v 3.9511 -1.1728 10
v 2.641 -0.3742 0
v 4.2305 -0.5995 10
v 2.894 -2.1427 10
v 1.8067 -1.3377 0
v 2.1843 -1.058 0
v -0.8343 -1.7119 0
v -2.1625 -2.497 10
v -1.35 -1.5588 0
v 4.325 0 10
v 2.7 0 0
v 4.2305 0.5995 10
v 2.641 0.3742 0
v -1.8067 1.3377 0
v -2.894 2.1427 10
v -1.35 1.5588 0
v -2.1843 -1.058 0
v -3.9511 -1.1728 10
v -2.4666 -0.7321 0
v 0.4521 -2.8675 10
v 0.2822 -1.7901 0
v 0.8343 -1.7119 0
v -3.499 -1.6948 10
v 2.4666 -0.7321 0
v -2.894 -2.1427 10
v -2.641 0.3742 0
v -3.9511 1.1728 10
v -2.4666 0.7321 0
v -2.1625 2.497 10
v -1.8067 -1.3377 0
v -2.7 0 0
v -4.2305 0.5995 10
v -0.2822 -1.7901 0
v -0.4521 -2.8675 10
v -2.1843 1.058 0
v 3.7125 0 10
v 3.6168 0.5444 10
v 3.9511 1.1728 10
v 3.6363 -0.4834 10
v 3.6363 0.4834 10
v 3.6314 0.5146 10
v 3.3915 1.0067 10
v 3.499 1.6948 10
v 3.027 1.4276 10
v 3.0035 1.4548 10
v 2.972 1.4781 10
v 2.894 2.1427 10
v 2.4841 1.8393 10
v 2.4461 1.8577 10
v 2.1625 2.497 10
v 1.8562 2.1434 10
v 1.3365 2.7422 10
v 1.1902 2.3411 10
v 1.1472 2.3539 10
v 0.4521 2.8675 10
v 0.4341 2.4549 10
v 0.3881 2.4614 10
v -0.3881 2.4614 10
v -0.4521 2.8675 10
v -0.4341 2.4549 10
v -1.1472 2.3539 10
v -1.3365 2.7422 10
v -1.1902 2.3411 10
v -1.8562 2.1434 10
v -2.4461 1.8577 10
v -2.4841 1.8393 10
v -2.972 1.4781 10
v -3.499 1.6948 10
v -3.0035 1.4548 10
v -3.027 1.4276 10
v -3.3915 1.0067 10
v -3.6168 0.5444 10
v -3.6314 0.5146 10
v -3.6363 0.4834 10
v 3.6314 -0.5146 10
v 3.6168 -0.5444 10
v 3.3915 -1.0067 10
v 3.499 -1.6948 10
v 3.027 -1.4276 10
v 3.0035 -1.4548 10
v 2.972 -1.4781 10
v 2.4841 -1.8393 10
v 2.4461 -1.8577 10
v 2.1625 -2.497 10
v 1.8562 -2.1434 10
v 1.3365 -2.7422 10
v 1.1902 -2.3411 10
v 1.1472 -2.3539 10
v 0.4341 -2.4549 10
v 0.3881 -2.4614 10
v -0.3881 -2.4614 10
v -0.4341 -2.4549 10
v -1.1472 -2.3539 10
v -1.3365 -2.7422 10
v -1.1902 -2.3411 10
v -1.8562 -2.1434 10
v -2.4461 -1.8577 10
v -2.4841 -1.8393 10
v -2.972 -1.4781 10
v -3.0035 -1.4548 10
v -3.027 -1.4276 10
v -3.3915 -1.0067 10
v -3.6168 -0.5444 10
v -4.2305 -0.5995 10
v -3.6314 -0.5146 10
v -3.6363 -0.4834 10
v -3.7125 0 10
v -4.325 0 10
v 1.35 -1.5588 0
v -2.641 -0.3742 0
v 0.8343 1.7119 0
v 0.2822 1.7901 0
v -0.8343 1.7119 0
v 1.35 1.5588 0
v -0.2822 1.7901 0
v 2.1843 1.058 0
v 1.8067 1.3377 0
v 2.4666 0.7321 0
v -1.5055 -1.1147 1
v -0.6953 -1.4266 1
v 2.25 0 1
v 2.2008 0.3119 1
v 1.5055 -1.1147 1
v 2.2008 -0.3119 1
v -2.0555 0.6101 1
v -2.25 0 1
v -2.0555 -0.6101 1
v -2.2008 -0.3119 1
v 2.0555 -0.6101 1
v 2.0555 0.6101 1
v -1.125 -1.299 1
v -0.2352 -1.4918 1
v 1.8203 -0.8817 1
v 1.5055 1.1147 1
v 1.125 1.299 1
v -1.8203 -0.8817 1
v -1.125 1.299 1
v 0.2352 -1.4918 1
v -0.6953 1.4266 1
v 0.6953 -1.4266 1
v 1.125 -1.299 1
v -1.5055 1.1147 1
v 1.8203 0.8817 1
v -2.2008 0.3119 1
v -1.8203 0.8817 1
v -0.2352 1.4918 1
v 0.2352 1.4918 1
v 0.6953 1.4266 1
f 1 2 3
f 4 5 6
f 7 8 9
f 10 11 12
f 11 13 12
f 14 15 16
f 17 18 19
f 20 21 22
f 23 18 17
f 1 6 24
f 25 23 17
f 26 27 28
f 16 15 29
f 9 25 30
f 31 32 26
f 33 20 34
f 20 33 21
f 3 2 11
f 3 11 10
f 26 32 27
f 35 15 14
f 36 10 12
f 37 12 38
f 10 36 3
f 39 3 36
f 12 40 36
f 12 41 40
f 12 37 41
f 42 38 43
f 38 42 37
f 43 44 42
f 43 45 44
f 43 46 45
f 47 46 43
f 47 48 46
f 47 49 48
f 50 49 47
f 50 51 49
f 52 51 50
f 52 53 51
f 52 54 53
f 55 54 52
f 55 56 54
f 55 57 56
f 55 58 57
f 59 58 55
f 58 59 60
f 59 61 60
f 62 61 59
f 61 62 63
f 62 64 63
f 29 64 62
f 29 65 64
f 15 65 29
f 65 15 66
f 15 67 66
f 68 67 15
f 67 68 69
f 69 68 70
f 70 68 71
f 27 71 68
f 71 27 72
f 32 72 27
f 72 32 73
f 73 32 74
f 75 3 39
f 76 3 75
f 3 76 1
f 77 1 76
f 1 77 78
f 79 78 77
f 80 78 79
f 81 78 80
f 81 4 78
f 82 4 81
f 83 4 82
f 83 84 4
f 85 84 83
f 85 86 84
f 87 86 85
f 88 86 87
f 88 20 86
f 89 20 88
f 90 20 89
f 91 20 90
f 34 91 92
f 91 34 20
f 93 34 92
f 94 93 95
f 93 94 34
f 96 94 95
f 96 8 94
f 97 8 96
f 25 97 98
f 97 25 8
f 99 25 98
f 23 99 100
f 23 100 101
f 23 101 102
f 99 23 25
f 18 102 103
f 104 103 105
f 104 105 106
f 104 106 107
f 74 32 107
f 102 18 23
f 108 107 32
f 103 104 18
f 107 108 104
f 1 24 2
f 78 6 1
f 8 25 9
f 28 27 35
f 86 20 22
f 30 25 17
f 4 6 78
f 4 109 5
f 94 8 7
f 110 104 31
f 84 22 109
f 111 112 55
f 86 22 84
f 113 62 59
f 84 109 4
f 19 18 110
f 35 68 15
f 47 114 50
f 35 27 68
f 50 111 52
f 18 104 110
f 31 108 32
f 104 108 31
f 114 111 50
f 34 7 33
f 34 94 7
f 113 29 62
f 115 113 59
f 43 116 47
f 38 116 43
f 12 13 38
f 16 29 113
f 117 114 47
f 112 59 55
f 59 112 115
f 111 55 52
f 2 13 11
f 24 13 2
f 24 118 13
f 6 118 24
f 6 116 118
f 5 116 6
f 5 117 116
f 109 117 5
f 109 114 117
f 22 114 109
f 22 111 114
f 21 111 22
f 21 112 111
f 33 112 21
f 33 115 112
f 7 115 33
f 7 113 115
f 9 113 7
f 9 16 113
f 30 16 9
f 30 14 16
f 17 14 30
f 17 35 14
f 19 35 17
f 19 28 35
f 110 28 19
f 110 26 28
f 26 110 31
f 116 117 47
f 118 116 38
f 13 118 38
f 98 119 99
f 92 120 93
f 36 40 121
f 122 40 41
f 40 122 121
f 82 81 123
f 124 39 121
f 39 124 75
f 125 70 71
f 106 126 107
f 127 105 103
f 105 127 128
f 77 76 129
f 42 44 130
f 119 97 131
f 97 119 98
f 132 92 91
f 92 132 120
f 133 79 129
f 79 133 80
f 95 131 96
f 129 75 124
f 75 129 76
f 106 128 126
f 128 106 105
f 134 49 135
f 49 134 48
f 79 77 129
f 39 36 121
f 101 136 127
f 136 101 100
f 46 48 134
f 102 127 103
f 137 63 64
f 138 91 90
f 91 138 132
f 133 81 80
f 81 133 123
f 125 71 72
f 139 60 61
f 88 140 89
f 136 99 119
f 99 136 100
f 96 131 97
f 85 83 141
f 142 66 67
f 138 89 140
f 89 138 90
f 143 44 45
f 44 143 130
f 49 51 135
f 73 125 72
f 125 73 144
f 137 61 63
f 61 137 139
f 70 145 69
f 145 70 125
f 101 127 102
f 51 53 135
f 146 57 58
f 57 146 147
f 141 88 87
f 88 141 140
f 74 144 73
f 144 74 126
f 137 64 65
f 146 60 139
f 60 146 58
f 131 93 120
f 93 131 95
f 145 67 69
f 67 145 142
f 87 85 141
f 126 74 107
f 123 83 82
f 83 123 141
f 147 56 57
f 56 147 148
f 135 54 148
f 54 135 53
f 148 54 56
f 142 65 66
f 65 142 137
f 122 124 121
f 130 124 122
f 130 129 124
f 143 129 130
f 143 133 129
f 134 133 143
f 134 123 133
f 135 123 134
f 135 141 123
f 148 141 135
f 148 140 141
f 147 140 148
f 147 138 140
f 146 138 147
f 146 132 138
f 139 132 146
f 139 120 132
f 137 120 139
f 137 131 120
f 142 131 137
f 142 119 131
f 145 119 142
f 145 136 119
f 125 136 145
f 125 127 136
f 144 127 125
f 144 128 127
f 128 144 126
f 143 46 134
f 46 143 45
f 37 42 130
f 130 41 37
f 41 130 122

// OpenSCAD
$fn = 30;

module TPUtip(){
difference(){
    union(){
        //scale([1.5,1,1]) cylinder(10,2.3,2.3);
        scale([1.5,1,1]) cylinder(10,1.8,1.8+(4.4-1.8)*10/24);
        //translate([0,-2+0.5,-3]) rotate([0,0,15]) rotate([0,-10,0]) translate([-2.2,0,1]) cube([6,3,4]);
    }
    union(){
        //translate([0,0,1]) scale([4,1,1]) cylinder(10,1,1);
        translate([0,0,1]) scale([1.5,1,1]) cylinder(10,1.5,1.5+(4.1-1.5)*10/24);
        //translate([3,20,4]) rotate([90,0,0]) cylinder(40,1.0,1.0);
        //translate([-3,20,4]) rotate([90,0,0]) cylinder(40,1.0,1.0);
    }
}

}

TPUtip();
